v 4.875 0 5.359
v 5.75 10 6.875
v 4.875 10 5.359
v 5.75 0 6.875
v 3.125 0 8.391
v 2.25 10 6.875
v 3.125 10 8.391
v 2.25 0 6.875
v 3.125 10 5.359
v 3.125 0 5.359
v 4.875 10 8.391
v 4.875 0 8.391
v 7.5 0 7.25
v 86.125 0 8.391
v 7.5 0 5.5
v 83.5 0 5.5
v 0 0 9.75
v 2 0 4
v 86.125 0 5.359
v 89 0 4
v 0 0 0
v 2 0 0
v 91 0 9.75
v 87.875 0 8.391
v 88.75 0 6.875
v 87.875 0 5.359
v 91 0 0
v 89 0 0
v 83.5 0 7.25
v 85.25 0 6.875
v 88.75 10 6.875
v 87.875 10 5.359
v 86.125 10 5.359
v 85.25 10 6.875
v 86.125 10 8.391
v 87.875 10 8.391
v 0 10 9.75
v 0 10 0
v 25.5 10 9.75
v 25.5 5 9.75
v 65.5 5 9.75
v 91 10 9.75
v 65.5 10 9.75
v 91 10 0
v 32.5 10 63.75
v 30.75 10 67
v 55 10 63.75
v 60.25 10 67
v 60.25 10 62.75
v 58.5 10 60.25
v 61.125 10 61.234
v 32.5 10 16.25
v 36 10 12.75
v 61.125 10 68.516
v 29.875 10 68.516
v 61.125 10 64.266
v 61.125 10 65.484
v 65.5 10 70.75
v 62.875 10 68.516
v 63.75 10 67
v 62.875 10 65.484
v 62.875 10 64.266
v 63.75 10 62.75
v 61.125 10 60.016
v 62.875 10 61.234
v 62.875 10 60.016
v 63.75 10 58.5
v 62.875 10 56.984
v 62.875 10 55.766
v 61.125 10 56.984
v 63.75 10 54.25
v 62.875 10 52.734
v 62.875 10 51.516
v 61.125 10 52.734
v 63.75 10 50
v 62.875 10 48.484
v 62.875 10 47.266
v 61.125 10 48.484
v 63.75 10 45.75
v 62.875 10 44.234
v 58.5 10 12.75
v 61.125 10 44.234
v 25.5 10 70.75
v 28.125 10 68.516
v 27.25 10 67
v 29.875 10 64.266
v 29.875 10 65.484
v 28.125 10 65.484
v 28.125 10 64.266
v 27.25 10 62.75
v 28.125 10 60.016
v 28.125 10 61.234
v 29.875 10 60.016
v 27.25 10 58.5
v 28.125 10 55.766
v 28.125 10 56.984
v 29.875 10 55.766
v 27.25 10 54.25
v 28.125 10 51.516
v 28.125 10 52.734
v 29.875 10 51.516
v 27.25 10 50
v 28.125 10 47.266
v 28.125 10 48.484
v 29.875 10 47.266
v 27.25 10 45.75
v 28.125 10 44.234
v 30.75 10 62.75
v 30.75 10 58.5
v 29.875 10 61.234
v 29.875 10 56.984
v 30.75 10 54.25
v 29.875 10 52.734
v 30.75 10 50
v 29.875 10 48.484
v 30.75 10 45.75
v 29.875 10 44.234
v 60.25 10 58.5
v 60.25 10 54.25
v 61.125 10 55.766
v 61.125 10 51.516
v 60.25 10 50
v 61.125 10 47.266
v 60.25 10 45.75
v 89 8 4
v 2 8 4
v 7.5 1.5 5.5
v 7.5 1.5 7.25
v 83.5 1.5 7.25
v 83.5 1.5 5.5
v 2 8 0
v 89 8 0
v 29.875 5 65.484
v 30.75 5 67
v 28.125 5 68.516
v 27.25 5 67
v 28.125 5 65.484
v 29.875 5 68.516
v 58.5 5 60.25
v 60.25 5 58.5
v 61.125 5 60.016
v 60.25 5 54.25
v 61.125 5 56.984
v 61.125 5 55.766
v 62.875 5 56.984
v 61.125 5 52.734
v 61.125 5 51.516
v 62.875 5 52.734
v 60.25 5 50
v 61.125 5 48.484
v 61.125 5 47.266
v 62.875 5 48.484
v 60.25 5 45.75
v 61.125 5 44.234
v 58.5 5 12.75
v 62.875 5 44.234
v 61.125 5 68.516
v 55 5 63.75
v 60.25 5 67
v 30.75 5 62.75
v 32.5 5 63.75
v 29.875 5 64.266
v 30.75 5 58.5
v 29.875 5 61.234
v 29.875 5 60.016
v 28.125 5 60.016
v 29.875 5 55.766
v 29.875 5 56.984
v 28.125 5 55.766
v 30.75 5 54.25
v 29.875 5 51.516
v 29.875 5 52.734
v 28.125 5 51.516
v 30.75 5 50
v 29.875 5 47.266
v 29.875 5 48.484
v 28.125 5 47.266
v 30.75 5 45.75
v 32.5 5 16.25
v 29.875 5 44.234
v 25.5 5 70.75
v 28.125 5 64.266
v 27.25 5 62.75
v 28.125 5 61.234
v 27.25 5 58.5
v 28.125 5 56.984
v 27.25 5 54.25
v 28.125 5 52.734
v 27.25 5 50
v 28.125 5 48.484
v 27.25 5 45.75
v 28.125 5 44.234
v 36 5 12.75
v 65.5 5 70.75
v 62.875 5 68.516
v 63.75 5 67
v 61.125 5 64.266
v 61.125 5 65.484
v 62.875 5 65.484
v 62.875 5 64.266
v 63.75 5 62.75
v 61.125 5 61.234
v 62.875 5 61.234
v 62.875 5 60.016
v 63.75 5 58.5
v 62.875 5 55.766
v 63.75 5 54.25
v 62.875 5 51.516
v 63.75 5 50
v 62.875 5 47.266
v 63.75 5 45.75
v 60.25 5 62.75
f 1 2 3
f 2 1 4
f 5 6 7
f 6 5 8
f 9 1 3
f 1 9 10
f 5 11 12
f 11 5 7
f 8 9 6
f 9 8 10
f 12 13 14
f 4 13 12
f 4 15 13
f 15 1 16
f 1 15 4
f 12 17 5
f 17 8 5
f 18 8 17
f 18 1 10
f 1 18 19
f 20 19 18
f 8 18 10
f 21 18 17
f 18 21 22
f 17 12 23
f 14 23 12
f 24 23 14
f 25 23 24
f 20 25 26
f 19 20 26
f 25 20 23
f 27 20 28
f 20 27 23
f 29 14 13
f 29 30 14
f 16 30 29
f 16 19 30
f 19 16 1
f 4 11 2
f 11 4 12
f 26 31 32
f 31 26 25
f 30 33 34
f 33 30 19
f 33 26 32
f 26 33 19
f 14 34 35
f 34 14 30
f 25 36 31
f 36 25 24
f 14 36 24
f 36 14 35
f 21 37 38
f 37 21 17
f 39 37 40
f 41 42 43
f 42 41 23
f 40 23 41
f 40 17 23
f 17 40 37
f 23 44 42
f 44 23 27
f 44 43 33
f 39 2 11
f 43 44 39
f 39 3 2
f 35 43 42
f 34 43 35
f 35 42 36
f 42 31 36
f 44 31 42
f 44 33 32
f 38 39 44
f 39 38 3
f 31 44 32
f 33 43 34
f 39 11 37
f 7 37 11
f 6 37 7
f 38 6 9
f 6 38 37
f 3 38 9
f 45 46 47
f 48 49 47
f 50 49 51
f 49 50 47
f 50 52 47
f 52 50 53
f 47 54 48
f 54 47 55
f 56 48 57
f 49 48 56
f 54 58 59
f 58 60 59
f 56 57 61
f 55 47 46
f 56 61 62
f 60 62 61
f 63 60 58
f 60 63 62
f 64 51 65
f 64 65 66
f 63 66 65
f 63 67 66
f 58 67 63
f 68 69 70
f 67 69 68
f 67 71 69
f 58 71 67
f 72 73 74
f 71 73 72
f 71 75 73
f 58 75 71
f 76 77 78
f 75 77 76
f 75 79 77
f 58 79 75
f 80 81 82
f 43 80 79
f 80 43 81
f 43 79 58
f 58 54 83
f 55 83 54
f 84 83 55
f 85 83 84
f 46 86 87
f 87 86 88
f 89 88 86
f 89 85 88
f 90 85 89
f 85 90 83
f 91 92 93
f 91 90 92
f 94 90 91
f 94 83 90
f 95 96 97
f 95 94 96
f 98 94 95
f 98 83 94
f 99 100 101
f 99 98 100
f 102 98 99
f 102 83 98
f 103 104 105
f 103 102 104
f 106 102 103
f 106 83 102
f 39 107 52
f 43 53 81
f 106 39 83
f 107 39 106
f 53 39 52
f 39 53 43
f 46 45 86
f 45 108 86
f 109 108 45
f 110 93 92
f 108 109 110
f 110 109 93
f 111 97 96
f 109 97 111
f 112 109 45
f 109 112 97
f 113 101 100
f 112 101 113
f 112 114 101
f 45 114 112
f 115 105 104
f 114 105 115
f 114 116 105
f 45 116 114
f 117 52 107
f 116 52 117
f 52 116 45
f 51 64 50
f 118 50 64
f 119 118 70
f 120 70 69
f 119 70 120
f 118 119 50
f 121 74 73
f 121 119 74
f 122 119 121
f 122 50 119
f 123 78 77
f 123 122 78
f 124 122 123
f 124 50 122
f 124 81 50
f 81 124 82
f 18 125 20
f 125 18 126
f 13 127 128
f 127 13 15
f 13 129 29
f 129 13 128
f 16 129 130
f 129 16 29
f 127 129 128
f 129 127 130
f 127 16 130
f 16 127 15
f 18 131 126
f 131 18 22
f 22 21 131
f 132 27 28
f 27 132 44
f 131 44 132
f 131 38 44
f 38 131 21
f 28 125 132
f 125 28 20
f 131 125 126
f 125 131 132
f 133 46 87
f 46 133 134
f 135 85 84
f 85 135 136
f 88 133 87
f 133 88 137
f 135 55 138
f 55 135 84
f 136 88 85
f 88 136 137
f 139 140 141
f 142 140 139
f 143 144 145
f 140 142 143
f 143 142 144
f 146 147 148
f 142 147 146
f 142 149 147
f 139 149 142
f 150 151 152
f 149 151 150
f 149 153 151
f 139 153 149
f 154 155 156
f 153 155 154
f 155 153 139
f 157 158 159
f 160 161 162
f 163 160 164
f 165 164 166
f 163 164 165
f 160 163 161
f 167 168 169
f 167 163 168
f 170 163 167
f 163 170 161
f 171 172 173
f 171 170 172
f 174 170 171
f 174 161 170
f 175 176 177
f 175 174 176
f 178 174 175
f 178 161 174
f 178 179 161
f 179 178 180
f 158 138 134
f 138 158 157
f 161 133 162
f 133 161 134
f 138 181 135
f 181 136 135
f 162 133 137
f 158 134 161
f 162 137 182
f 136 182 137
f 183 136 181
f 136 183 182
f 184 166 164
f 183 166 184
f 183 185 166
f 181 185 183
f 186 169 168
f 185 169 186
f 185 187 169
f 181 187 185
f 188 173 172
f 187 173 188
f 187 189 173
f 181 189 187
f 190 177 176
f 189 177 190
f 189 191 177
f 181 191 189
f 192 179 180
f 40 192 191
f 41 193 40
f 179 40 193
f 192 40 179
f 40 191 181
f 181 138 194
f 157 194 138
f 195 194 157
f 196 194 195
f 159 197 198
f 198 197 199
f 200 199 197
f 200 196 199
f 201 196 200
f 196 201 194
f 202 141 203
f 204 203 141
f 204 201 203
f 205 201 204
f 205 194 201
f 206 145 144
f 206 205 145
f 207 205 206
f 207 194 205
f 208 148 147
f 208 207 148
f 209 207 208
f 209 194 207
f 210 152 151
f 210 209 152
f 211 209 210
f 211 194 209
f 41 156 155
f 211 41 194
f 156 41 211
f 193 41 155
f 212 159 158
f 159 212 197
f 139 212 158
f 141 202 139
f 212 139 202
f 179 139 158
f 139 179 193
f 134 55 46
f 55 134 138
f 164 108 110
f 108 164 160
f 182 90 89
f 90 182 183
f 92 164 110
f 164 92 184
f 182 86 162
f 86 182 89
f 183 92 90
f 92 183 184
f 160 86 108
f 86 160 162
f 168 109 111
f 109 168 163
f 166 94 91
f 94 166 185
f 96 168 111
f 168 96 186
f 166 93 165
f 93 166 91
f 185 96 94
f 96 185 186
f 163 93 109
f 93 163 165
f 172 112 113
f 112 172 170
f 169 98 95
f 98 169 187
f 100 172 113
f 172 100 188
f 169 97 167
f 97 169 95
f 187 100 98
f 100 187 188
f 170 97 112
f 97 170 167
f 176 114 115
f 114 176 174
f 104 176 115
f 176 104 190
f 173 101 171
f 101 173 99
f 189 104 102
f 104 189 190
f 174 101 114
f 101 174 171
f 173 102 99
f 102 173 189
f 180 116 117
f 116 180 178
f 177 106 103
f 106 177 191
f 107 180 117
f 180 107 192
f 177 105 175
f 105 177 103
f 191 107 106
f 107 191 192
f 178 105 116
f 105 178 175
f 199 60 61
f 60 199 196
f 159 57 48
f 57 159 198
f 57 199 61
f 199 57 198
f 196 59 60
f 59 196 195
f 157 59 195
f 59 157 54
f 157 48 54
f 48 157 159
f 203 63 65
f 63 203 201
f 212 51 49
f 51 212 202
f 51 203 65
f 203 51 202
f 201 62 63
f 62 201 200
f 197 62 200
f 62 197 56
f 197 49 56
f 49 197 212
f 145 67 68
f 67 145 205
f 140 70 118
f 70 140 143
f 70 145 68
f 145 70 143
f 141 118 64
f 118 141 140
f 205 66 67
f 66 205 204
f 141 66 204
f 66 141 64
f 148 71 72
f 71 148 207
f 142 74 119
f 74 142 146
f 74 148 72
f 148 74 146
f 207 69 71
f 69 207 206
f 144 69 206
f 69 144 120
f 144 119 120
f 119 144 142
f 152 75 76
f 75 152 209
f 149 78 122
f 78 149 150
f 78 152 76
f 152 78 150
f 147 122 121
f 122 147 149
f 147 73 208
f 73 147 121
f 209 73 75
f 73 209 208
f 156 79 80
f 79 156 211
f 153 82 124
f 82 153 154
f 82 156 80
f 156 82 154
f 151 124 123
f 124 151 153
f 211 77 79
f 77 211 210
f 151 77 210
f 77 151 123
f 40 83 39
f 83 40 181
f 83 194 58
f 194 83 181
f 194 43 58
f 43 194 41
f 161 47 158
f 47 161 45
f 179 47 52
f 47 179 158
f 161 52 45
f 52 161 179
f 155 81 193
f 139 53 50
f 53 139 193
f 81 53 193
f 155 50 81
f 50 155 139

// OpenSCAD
function inToMM(in) = in * 25.4;

boardLength = 76;
boardWidth = 10;
boardHeight = 1.75;
skirt = 1.5;
bottomSkirt = 2;
mountHoleRadius = 1.75;
skirtHeight = 4;
skirtWidth = 2;
totalLength = boardLength + 15;
midpoint = totalLength/2;

linkHeight = 65;
linkWidth = 40;
linkDepth = 5;
linkHoleOffset = 2;

module triangle(o_len, a_len, depth) {
    linear_extrude(height=depth) {
        polygon(points=[[0,0],[a_len,0],[0,o_len]], paths=[[0,1,2]]);
    }
}


module link() {
    difference() {
        cube([linkWidth, linkDepth, linkHeight]);
        translate([7, 0, linkHeight-7]) rotate([-90, 0, 0]) triangle(linkHeight - (7 * 2.5), linkWidth - (7 * 2.5), linkDepth);
        translate([linkWidth - 7, 0, 7]) rotate([-90, -180, 0]) triangle(linkHeight - (7 * 2.5), linkWidth - (7 * 2.5), linkDepth);
        
        for (i=[0:1]) {
            for (n=[0:5]) {
                translate([3.5 + i*(linkWidth - 7), 0, (linkHeight - linkHoleOffset - mountHoleRadius) - (n * (mountHoleRadius + linkHoleOffset + 0.5))]) rotate([-90, 0, 0]) cylinder(linkDepth, mountHoleRadius, mountHoleRadius);
            }
        }
    }
}

module base() {
    
    translate([0, 0, skirtHeight])
    difference() {
        cube([totalLength, 10, boardHeight + 2*bottomSkirt]);
        translate([midpoint - (boardLength/2), 0, skirt]) cube([boardLength, skirt, boardHeight]);        
        for (i=[0:1]) {
            offset = 4;
            translate([offset + i * (totalLength - (offset*(i+1))),0,boardHeight/2 + bottomSkirt]) rotate([-90,0,0]) cylinder(boardWidth + 5, mountHoleRadius, mountHoleRadius);
        }
    }
    
    cube([skirtWidth, 10, skirtHeight]);
    translate([totalLength - skirtWidth, 0, 0]) cube([skirtWidth, 10, skirtHeight]);
    translate([0, 10-skirtWidth, 0]) cube([totalLength, skirtWidth, skirtHeight]);
}

module mount() {
    base();
    translate([midpoint - linkWidth/2, 10-linkDepth, boardHeight + 2*bottomSkirt]) link();
}

mount();
